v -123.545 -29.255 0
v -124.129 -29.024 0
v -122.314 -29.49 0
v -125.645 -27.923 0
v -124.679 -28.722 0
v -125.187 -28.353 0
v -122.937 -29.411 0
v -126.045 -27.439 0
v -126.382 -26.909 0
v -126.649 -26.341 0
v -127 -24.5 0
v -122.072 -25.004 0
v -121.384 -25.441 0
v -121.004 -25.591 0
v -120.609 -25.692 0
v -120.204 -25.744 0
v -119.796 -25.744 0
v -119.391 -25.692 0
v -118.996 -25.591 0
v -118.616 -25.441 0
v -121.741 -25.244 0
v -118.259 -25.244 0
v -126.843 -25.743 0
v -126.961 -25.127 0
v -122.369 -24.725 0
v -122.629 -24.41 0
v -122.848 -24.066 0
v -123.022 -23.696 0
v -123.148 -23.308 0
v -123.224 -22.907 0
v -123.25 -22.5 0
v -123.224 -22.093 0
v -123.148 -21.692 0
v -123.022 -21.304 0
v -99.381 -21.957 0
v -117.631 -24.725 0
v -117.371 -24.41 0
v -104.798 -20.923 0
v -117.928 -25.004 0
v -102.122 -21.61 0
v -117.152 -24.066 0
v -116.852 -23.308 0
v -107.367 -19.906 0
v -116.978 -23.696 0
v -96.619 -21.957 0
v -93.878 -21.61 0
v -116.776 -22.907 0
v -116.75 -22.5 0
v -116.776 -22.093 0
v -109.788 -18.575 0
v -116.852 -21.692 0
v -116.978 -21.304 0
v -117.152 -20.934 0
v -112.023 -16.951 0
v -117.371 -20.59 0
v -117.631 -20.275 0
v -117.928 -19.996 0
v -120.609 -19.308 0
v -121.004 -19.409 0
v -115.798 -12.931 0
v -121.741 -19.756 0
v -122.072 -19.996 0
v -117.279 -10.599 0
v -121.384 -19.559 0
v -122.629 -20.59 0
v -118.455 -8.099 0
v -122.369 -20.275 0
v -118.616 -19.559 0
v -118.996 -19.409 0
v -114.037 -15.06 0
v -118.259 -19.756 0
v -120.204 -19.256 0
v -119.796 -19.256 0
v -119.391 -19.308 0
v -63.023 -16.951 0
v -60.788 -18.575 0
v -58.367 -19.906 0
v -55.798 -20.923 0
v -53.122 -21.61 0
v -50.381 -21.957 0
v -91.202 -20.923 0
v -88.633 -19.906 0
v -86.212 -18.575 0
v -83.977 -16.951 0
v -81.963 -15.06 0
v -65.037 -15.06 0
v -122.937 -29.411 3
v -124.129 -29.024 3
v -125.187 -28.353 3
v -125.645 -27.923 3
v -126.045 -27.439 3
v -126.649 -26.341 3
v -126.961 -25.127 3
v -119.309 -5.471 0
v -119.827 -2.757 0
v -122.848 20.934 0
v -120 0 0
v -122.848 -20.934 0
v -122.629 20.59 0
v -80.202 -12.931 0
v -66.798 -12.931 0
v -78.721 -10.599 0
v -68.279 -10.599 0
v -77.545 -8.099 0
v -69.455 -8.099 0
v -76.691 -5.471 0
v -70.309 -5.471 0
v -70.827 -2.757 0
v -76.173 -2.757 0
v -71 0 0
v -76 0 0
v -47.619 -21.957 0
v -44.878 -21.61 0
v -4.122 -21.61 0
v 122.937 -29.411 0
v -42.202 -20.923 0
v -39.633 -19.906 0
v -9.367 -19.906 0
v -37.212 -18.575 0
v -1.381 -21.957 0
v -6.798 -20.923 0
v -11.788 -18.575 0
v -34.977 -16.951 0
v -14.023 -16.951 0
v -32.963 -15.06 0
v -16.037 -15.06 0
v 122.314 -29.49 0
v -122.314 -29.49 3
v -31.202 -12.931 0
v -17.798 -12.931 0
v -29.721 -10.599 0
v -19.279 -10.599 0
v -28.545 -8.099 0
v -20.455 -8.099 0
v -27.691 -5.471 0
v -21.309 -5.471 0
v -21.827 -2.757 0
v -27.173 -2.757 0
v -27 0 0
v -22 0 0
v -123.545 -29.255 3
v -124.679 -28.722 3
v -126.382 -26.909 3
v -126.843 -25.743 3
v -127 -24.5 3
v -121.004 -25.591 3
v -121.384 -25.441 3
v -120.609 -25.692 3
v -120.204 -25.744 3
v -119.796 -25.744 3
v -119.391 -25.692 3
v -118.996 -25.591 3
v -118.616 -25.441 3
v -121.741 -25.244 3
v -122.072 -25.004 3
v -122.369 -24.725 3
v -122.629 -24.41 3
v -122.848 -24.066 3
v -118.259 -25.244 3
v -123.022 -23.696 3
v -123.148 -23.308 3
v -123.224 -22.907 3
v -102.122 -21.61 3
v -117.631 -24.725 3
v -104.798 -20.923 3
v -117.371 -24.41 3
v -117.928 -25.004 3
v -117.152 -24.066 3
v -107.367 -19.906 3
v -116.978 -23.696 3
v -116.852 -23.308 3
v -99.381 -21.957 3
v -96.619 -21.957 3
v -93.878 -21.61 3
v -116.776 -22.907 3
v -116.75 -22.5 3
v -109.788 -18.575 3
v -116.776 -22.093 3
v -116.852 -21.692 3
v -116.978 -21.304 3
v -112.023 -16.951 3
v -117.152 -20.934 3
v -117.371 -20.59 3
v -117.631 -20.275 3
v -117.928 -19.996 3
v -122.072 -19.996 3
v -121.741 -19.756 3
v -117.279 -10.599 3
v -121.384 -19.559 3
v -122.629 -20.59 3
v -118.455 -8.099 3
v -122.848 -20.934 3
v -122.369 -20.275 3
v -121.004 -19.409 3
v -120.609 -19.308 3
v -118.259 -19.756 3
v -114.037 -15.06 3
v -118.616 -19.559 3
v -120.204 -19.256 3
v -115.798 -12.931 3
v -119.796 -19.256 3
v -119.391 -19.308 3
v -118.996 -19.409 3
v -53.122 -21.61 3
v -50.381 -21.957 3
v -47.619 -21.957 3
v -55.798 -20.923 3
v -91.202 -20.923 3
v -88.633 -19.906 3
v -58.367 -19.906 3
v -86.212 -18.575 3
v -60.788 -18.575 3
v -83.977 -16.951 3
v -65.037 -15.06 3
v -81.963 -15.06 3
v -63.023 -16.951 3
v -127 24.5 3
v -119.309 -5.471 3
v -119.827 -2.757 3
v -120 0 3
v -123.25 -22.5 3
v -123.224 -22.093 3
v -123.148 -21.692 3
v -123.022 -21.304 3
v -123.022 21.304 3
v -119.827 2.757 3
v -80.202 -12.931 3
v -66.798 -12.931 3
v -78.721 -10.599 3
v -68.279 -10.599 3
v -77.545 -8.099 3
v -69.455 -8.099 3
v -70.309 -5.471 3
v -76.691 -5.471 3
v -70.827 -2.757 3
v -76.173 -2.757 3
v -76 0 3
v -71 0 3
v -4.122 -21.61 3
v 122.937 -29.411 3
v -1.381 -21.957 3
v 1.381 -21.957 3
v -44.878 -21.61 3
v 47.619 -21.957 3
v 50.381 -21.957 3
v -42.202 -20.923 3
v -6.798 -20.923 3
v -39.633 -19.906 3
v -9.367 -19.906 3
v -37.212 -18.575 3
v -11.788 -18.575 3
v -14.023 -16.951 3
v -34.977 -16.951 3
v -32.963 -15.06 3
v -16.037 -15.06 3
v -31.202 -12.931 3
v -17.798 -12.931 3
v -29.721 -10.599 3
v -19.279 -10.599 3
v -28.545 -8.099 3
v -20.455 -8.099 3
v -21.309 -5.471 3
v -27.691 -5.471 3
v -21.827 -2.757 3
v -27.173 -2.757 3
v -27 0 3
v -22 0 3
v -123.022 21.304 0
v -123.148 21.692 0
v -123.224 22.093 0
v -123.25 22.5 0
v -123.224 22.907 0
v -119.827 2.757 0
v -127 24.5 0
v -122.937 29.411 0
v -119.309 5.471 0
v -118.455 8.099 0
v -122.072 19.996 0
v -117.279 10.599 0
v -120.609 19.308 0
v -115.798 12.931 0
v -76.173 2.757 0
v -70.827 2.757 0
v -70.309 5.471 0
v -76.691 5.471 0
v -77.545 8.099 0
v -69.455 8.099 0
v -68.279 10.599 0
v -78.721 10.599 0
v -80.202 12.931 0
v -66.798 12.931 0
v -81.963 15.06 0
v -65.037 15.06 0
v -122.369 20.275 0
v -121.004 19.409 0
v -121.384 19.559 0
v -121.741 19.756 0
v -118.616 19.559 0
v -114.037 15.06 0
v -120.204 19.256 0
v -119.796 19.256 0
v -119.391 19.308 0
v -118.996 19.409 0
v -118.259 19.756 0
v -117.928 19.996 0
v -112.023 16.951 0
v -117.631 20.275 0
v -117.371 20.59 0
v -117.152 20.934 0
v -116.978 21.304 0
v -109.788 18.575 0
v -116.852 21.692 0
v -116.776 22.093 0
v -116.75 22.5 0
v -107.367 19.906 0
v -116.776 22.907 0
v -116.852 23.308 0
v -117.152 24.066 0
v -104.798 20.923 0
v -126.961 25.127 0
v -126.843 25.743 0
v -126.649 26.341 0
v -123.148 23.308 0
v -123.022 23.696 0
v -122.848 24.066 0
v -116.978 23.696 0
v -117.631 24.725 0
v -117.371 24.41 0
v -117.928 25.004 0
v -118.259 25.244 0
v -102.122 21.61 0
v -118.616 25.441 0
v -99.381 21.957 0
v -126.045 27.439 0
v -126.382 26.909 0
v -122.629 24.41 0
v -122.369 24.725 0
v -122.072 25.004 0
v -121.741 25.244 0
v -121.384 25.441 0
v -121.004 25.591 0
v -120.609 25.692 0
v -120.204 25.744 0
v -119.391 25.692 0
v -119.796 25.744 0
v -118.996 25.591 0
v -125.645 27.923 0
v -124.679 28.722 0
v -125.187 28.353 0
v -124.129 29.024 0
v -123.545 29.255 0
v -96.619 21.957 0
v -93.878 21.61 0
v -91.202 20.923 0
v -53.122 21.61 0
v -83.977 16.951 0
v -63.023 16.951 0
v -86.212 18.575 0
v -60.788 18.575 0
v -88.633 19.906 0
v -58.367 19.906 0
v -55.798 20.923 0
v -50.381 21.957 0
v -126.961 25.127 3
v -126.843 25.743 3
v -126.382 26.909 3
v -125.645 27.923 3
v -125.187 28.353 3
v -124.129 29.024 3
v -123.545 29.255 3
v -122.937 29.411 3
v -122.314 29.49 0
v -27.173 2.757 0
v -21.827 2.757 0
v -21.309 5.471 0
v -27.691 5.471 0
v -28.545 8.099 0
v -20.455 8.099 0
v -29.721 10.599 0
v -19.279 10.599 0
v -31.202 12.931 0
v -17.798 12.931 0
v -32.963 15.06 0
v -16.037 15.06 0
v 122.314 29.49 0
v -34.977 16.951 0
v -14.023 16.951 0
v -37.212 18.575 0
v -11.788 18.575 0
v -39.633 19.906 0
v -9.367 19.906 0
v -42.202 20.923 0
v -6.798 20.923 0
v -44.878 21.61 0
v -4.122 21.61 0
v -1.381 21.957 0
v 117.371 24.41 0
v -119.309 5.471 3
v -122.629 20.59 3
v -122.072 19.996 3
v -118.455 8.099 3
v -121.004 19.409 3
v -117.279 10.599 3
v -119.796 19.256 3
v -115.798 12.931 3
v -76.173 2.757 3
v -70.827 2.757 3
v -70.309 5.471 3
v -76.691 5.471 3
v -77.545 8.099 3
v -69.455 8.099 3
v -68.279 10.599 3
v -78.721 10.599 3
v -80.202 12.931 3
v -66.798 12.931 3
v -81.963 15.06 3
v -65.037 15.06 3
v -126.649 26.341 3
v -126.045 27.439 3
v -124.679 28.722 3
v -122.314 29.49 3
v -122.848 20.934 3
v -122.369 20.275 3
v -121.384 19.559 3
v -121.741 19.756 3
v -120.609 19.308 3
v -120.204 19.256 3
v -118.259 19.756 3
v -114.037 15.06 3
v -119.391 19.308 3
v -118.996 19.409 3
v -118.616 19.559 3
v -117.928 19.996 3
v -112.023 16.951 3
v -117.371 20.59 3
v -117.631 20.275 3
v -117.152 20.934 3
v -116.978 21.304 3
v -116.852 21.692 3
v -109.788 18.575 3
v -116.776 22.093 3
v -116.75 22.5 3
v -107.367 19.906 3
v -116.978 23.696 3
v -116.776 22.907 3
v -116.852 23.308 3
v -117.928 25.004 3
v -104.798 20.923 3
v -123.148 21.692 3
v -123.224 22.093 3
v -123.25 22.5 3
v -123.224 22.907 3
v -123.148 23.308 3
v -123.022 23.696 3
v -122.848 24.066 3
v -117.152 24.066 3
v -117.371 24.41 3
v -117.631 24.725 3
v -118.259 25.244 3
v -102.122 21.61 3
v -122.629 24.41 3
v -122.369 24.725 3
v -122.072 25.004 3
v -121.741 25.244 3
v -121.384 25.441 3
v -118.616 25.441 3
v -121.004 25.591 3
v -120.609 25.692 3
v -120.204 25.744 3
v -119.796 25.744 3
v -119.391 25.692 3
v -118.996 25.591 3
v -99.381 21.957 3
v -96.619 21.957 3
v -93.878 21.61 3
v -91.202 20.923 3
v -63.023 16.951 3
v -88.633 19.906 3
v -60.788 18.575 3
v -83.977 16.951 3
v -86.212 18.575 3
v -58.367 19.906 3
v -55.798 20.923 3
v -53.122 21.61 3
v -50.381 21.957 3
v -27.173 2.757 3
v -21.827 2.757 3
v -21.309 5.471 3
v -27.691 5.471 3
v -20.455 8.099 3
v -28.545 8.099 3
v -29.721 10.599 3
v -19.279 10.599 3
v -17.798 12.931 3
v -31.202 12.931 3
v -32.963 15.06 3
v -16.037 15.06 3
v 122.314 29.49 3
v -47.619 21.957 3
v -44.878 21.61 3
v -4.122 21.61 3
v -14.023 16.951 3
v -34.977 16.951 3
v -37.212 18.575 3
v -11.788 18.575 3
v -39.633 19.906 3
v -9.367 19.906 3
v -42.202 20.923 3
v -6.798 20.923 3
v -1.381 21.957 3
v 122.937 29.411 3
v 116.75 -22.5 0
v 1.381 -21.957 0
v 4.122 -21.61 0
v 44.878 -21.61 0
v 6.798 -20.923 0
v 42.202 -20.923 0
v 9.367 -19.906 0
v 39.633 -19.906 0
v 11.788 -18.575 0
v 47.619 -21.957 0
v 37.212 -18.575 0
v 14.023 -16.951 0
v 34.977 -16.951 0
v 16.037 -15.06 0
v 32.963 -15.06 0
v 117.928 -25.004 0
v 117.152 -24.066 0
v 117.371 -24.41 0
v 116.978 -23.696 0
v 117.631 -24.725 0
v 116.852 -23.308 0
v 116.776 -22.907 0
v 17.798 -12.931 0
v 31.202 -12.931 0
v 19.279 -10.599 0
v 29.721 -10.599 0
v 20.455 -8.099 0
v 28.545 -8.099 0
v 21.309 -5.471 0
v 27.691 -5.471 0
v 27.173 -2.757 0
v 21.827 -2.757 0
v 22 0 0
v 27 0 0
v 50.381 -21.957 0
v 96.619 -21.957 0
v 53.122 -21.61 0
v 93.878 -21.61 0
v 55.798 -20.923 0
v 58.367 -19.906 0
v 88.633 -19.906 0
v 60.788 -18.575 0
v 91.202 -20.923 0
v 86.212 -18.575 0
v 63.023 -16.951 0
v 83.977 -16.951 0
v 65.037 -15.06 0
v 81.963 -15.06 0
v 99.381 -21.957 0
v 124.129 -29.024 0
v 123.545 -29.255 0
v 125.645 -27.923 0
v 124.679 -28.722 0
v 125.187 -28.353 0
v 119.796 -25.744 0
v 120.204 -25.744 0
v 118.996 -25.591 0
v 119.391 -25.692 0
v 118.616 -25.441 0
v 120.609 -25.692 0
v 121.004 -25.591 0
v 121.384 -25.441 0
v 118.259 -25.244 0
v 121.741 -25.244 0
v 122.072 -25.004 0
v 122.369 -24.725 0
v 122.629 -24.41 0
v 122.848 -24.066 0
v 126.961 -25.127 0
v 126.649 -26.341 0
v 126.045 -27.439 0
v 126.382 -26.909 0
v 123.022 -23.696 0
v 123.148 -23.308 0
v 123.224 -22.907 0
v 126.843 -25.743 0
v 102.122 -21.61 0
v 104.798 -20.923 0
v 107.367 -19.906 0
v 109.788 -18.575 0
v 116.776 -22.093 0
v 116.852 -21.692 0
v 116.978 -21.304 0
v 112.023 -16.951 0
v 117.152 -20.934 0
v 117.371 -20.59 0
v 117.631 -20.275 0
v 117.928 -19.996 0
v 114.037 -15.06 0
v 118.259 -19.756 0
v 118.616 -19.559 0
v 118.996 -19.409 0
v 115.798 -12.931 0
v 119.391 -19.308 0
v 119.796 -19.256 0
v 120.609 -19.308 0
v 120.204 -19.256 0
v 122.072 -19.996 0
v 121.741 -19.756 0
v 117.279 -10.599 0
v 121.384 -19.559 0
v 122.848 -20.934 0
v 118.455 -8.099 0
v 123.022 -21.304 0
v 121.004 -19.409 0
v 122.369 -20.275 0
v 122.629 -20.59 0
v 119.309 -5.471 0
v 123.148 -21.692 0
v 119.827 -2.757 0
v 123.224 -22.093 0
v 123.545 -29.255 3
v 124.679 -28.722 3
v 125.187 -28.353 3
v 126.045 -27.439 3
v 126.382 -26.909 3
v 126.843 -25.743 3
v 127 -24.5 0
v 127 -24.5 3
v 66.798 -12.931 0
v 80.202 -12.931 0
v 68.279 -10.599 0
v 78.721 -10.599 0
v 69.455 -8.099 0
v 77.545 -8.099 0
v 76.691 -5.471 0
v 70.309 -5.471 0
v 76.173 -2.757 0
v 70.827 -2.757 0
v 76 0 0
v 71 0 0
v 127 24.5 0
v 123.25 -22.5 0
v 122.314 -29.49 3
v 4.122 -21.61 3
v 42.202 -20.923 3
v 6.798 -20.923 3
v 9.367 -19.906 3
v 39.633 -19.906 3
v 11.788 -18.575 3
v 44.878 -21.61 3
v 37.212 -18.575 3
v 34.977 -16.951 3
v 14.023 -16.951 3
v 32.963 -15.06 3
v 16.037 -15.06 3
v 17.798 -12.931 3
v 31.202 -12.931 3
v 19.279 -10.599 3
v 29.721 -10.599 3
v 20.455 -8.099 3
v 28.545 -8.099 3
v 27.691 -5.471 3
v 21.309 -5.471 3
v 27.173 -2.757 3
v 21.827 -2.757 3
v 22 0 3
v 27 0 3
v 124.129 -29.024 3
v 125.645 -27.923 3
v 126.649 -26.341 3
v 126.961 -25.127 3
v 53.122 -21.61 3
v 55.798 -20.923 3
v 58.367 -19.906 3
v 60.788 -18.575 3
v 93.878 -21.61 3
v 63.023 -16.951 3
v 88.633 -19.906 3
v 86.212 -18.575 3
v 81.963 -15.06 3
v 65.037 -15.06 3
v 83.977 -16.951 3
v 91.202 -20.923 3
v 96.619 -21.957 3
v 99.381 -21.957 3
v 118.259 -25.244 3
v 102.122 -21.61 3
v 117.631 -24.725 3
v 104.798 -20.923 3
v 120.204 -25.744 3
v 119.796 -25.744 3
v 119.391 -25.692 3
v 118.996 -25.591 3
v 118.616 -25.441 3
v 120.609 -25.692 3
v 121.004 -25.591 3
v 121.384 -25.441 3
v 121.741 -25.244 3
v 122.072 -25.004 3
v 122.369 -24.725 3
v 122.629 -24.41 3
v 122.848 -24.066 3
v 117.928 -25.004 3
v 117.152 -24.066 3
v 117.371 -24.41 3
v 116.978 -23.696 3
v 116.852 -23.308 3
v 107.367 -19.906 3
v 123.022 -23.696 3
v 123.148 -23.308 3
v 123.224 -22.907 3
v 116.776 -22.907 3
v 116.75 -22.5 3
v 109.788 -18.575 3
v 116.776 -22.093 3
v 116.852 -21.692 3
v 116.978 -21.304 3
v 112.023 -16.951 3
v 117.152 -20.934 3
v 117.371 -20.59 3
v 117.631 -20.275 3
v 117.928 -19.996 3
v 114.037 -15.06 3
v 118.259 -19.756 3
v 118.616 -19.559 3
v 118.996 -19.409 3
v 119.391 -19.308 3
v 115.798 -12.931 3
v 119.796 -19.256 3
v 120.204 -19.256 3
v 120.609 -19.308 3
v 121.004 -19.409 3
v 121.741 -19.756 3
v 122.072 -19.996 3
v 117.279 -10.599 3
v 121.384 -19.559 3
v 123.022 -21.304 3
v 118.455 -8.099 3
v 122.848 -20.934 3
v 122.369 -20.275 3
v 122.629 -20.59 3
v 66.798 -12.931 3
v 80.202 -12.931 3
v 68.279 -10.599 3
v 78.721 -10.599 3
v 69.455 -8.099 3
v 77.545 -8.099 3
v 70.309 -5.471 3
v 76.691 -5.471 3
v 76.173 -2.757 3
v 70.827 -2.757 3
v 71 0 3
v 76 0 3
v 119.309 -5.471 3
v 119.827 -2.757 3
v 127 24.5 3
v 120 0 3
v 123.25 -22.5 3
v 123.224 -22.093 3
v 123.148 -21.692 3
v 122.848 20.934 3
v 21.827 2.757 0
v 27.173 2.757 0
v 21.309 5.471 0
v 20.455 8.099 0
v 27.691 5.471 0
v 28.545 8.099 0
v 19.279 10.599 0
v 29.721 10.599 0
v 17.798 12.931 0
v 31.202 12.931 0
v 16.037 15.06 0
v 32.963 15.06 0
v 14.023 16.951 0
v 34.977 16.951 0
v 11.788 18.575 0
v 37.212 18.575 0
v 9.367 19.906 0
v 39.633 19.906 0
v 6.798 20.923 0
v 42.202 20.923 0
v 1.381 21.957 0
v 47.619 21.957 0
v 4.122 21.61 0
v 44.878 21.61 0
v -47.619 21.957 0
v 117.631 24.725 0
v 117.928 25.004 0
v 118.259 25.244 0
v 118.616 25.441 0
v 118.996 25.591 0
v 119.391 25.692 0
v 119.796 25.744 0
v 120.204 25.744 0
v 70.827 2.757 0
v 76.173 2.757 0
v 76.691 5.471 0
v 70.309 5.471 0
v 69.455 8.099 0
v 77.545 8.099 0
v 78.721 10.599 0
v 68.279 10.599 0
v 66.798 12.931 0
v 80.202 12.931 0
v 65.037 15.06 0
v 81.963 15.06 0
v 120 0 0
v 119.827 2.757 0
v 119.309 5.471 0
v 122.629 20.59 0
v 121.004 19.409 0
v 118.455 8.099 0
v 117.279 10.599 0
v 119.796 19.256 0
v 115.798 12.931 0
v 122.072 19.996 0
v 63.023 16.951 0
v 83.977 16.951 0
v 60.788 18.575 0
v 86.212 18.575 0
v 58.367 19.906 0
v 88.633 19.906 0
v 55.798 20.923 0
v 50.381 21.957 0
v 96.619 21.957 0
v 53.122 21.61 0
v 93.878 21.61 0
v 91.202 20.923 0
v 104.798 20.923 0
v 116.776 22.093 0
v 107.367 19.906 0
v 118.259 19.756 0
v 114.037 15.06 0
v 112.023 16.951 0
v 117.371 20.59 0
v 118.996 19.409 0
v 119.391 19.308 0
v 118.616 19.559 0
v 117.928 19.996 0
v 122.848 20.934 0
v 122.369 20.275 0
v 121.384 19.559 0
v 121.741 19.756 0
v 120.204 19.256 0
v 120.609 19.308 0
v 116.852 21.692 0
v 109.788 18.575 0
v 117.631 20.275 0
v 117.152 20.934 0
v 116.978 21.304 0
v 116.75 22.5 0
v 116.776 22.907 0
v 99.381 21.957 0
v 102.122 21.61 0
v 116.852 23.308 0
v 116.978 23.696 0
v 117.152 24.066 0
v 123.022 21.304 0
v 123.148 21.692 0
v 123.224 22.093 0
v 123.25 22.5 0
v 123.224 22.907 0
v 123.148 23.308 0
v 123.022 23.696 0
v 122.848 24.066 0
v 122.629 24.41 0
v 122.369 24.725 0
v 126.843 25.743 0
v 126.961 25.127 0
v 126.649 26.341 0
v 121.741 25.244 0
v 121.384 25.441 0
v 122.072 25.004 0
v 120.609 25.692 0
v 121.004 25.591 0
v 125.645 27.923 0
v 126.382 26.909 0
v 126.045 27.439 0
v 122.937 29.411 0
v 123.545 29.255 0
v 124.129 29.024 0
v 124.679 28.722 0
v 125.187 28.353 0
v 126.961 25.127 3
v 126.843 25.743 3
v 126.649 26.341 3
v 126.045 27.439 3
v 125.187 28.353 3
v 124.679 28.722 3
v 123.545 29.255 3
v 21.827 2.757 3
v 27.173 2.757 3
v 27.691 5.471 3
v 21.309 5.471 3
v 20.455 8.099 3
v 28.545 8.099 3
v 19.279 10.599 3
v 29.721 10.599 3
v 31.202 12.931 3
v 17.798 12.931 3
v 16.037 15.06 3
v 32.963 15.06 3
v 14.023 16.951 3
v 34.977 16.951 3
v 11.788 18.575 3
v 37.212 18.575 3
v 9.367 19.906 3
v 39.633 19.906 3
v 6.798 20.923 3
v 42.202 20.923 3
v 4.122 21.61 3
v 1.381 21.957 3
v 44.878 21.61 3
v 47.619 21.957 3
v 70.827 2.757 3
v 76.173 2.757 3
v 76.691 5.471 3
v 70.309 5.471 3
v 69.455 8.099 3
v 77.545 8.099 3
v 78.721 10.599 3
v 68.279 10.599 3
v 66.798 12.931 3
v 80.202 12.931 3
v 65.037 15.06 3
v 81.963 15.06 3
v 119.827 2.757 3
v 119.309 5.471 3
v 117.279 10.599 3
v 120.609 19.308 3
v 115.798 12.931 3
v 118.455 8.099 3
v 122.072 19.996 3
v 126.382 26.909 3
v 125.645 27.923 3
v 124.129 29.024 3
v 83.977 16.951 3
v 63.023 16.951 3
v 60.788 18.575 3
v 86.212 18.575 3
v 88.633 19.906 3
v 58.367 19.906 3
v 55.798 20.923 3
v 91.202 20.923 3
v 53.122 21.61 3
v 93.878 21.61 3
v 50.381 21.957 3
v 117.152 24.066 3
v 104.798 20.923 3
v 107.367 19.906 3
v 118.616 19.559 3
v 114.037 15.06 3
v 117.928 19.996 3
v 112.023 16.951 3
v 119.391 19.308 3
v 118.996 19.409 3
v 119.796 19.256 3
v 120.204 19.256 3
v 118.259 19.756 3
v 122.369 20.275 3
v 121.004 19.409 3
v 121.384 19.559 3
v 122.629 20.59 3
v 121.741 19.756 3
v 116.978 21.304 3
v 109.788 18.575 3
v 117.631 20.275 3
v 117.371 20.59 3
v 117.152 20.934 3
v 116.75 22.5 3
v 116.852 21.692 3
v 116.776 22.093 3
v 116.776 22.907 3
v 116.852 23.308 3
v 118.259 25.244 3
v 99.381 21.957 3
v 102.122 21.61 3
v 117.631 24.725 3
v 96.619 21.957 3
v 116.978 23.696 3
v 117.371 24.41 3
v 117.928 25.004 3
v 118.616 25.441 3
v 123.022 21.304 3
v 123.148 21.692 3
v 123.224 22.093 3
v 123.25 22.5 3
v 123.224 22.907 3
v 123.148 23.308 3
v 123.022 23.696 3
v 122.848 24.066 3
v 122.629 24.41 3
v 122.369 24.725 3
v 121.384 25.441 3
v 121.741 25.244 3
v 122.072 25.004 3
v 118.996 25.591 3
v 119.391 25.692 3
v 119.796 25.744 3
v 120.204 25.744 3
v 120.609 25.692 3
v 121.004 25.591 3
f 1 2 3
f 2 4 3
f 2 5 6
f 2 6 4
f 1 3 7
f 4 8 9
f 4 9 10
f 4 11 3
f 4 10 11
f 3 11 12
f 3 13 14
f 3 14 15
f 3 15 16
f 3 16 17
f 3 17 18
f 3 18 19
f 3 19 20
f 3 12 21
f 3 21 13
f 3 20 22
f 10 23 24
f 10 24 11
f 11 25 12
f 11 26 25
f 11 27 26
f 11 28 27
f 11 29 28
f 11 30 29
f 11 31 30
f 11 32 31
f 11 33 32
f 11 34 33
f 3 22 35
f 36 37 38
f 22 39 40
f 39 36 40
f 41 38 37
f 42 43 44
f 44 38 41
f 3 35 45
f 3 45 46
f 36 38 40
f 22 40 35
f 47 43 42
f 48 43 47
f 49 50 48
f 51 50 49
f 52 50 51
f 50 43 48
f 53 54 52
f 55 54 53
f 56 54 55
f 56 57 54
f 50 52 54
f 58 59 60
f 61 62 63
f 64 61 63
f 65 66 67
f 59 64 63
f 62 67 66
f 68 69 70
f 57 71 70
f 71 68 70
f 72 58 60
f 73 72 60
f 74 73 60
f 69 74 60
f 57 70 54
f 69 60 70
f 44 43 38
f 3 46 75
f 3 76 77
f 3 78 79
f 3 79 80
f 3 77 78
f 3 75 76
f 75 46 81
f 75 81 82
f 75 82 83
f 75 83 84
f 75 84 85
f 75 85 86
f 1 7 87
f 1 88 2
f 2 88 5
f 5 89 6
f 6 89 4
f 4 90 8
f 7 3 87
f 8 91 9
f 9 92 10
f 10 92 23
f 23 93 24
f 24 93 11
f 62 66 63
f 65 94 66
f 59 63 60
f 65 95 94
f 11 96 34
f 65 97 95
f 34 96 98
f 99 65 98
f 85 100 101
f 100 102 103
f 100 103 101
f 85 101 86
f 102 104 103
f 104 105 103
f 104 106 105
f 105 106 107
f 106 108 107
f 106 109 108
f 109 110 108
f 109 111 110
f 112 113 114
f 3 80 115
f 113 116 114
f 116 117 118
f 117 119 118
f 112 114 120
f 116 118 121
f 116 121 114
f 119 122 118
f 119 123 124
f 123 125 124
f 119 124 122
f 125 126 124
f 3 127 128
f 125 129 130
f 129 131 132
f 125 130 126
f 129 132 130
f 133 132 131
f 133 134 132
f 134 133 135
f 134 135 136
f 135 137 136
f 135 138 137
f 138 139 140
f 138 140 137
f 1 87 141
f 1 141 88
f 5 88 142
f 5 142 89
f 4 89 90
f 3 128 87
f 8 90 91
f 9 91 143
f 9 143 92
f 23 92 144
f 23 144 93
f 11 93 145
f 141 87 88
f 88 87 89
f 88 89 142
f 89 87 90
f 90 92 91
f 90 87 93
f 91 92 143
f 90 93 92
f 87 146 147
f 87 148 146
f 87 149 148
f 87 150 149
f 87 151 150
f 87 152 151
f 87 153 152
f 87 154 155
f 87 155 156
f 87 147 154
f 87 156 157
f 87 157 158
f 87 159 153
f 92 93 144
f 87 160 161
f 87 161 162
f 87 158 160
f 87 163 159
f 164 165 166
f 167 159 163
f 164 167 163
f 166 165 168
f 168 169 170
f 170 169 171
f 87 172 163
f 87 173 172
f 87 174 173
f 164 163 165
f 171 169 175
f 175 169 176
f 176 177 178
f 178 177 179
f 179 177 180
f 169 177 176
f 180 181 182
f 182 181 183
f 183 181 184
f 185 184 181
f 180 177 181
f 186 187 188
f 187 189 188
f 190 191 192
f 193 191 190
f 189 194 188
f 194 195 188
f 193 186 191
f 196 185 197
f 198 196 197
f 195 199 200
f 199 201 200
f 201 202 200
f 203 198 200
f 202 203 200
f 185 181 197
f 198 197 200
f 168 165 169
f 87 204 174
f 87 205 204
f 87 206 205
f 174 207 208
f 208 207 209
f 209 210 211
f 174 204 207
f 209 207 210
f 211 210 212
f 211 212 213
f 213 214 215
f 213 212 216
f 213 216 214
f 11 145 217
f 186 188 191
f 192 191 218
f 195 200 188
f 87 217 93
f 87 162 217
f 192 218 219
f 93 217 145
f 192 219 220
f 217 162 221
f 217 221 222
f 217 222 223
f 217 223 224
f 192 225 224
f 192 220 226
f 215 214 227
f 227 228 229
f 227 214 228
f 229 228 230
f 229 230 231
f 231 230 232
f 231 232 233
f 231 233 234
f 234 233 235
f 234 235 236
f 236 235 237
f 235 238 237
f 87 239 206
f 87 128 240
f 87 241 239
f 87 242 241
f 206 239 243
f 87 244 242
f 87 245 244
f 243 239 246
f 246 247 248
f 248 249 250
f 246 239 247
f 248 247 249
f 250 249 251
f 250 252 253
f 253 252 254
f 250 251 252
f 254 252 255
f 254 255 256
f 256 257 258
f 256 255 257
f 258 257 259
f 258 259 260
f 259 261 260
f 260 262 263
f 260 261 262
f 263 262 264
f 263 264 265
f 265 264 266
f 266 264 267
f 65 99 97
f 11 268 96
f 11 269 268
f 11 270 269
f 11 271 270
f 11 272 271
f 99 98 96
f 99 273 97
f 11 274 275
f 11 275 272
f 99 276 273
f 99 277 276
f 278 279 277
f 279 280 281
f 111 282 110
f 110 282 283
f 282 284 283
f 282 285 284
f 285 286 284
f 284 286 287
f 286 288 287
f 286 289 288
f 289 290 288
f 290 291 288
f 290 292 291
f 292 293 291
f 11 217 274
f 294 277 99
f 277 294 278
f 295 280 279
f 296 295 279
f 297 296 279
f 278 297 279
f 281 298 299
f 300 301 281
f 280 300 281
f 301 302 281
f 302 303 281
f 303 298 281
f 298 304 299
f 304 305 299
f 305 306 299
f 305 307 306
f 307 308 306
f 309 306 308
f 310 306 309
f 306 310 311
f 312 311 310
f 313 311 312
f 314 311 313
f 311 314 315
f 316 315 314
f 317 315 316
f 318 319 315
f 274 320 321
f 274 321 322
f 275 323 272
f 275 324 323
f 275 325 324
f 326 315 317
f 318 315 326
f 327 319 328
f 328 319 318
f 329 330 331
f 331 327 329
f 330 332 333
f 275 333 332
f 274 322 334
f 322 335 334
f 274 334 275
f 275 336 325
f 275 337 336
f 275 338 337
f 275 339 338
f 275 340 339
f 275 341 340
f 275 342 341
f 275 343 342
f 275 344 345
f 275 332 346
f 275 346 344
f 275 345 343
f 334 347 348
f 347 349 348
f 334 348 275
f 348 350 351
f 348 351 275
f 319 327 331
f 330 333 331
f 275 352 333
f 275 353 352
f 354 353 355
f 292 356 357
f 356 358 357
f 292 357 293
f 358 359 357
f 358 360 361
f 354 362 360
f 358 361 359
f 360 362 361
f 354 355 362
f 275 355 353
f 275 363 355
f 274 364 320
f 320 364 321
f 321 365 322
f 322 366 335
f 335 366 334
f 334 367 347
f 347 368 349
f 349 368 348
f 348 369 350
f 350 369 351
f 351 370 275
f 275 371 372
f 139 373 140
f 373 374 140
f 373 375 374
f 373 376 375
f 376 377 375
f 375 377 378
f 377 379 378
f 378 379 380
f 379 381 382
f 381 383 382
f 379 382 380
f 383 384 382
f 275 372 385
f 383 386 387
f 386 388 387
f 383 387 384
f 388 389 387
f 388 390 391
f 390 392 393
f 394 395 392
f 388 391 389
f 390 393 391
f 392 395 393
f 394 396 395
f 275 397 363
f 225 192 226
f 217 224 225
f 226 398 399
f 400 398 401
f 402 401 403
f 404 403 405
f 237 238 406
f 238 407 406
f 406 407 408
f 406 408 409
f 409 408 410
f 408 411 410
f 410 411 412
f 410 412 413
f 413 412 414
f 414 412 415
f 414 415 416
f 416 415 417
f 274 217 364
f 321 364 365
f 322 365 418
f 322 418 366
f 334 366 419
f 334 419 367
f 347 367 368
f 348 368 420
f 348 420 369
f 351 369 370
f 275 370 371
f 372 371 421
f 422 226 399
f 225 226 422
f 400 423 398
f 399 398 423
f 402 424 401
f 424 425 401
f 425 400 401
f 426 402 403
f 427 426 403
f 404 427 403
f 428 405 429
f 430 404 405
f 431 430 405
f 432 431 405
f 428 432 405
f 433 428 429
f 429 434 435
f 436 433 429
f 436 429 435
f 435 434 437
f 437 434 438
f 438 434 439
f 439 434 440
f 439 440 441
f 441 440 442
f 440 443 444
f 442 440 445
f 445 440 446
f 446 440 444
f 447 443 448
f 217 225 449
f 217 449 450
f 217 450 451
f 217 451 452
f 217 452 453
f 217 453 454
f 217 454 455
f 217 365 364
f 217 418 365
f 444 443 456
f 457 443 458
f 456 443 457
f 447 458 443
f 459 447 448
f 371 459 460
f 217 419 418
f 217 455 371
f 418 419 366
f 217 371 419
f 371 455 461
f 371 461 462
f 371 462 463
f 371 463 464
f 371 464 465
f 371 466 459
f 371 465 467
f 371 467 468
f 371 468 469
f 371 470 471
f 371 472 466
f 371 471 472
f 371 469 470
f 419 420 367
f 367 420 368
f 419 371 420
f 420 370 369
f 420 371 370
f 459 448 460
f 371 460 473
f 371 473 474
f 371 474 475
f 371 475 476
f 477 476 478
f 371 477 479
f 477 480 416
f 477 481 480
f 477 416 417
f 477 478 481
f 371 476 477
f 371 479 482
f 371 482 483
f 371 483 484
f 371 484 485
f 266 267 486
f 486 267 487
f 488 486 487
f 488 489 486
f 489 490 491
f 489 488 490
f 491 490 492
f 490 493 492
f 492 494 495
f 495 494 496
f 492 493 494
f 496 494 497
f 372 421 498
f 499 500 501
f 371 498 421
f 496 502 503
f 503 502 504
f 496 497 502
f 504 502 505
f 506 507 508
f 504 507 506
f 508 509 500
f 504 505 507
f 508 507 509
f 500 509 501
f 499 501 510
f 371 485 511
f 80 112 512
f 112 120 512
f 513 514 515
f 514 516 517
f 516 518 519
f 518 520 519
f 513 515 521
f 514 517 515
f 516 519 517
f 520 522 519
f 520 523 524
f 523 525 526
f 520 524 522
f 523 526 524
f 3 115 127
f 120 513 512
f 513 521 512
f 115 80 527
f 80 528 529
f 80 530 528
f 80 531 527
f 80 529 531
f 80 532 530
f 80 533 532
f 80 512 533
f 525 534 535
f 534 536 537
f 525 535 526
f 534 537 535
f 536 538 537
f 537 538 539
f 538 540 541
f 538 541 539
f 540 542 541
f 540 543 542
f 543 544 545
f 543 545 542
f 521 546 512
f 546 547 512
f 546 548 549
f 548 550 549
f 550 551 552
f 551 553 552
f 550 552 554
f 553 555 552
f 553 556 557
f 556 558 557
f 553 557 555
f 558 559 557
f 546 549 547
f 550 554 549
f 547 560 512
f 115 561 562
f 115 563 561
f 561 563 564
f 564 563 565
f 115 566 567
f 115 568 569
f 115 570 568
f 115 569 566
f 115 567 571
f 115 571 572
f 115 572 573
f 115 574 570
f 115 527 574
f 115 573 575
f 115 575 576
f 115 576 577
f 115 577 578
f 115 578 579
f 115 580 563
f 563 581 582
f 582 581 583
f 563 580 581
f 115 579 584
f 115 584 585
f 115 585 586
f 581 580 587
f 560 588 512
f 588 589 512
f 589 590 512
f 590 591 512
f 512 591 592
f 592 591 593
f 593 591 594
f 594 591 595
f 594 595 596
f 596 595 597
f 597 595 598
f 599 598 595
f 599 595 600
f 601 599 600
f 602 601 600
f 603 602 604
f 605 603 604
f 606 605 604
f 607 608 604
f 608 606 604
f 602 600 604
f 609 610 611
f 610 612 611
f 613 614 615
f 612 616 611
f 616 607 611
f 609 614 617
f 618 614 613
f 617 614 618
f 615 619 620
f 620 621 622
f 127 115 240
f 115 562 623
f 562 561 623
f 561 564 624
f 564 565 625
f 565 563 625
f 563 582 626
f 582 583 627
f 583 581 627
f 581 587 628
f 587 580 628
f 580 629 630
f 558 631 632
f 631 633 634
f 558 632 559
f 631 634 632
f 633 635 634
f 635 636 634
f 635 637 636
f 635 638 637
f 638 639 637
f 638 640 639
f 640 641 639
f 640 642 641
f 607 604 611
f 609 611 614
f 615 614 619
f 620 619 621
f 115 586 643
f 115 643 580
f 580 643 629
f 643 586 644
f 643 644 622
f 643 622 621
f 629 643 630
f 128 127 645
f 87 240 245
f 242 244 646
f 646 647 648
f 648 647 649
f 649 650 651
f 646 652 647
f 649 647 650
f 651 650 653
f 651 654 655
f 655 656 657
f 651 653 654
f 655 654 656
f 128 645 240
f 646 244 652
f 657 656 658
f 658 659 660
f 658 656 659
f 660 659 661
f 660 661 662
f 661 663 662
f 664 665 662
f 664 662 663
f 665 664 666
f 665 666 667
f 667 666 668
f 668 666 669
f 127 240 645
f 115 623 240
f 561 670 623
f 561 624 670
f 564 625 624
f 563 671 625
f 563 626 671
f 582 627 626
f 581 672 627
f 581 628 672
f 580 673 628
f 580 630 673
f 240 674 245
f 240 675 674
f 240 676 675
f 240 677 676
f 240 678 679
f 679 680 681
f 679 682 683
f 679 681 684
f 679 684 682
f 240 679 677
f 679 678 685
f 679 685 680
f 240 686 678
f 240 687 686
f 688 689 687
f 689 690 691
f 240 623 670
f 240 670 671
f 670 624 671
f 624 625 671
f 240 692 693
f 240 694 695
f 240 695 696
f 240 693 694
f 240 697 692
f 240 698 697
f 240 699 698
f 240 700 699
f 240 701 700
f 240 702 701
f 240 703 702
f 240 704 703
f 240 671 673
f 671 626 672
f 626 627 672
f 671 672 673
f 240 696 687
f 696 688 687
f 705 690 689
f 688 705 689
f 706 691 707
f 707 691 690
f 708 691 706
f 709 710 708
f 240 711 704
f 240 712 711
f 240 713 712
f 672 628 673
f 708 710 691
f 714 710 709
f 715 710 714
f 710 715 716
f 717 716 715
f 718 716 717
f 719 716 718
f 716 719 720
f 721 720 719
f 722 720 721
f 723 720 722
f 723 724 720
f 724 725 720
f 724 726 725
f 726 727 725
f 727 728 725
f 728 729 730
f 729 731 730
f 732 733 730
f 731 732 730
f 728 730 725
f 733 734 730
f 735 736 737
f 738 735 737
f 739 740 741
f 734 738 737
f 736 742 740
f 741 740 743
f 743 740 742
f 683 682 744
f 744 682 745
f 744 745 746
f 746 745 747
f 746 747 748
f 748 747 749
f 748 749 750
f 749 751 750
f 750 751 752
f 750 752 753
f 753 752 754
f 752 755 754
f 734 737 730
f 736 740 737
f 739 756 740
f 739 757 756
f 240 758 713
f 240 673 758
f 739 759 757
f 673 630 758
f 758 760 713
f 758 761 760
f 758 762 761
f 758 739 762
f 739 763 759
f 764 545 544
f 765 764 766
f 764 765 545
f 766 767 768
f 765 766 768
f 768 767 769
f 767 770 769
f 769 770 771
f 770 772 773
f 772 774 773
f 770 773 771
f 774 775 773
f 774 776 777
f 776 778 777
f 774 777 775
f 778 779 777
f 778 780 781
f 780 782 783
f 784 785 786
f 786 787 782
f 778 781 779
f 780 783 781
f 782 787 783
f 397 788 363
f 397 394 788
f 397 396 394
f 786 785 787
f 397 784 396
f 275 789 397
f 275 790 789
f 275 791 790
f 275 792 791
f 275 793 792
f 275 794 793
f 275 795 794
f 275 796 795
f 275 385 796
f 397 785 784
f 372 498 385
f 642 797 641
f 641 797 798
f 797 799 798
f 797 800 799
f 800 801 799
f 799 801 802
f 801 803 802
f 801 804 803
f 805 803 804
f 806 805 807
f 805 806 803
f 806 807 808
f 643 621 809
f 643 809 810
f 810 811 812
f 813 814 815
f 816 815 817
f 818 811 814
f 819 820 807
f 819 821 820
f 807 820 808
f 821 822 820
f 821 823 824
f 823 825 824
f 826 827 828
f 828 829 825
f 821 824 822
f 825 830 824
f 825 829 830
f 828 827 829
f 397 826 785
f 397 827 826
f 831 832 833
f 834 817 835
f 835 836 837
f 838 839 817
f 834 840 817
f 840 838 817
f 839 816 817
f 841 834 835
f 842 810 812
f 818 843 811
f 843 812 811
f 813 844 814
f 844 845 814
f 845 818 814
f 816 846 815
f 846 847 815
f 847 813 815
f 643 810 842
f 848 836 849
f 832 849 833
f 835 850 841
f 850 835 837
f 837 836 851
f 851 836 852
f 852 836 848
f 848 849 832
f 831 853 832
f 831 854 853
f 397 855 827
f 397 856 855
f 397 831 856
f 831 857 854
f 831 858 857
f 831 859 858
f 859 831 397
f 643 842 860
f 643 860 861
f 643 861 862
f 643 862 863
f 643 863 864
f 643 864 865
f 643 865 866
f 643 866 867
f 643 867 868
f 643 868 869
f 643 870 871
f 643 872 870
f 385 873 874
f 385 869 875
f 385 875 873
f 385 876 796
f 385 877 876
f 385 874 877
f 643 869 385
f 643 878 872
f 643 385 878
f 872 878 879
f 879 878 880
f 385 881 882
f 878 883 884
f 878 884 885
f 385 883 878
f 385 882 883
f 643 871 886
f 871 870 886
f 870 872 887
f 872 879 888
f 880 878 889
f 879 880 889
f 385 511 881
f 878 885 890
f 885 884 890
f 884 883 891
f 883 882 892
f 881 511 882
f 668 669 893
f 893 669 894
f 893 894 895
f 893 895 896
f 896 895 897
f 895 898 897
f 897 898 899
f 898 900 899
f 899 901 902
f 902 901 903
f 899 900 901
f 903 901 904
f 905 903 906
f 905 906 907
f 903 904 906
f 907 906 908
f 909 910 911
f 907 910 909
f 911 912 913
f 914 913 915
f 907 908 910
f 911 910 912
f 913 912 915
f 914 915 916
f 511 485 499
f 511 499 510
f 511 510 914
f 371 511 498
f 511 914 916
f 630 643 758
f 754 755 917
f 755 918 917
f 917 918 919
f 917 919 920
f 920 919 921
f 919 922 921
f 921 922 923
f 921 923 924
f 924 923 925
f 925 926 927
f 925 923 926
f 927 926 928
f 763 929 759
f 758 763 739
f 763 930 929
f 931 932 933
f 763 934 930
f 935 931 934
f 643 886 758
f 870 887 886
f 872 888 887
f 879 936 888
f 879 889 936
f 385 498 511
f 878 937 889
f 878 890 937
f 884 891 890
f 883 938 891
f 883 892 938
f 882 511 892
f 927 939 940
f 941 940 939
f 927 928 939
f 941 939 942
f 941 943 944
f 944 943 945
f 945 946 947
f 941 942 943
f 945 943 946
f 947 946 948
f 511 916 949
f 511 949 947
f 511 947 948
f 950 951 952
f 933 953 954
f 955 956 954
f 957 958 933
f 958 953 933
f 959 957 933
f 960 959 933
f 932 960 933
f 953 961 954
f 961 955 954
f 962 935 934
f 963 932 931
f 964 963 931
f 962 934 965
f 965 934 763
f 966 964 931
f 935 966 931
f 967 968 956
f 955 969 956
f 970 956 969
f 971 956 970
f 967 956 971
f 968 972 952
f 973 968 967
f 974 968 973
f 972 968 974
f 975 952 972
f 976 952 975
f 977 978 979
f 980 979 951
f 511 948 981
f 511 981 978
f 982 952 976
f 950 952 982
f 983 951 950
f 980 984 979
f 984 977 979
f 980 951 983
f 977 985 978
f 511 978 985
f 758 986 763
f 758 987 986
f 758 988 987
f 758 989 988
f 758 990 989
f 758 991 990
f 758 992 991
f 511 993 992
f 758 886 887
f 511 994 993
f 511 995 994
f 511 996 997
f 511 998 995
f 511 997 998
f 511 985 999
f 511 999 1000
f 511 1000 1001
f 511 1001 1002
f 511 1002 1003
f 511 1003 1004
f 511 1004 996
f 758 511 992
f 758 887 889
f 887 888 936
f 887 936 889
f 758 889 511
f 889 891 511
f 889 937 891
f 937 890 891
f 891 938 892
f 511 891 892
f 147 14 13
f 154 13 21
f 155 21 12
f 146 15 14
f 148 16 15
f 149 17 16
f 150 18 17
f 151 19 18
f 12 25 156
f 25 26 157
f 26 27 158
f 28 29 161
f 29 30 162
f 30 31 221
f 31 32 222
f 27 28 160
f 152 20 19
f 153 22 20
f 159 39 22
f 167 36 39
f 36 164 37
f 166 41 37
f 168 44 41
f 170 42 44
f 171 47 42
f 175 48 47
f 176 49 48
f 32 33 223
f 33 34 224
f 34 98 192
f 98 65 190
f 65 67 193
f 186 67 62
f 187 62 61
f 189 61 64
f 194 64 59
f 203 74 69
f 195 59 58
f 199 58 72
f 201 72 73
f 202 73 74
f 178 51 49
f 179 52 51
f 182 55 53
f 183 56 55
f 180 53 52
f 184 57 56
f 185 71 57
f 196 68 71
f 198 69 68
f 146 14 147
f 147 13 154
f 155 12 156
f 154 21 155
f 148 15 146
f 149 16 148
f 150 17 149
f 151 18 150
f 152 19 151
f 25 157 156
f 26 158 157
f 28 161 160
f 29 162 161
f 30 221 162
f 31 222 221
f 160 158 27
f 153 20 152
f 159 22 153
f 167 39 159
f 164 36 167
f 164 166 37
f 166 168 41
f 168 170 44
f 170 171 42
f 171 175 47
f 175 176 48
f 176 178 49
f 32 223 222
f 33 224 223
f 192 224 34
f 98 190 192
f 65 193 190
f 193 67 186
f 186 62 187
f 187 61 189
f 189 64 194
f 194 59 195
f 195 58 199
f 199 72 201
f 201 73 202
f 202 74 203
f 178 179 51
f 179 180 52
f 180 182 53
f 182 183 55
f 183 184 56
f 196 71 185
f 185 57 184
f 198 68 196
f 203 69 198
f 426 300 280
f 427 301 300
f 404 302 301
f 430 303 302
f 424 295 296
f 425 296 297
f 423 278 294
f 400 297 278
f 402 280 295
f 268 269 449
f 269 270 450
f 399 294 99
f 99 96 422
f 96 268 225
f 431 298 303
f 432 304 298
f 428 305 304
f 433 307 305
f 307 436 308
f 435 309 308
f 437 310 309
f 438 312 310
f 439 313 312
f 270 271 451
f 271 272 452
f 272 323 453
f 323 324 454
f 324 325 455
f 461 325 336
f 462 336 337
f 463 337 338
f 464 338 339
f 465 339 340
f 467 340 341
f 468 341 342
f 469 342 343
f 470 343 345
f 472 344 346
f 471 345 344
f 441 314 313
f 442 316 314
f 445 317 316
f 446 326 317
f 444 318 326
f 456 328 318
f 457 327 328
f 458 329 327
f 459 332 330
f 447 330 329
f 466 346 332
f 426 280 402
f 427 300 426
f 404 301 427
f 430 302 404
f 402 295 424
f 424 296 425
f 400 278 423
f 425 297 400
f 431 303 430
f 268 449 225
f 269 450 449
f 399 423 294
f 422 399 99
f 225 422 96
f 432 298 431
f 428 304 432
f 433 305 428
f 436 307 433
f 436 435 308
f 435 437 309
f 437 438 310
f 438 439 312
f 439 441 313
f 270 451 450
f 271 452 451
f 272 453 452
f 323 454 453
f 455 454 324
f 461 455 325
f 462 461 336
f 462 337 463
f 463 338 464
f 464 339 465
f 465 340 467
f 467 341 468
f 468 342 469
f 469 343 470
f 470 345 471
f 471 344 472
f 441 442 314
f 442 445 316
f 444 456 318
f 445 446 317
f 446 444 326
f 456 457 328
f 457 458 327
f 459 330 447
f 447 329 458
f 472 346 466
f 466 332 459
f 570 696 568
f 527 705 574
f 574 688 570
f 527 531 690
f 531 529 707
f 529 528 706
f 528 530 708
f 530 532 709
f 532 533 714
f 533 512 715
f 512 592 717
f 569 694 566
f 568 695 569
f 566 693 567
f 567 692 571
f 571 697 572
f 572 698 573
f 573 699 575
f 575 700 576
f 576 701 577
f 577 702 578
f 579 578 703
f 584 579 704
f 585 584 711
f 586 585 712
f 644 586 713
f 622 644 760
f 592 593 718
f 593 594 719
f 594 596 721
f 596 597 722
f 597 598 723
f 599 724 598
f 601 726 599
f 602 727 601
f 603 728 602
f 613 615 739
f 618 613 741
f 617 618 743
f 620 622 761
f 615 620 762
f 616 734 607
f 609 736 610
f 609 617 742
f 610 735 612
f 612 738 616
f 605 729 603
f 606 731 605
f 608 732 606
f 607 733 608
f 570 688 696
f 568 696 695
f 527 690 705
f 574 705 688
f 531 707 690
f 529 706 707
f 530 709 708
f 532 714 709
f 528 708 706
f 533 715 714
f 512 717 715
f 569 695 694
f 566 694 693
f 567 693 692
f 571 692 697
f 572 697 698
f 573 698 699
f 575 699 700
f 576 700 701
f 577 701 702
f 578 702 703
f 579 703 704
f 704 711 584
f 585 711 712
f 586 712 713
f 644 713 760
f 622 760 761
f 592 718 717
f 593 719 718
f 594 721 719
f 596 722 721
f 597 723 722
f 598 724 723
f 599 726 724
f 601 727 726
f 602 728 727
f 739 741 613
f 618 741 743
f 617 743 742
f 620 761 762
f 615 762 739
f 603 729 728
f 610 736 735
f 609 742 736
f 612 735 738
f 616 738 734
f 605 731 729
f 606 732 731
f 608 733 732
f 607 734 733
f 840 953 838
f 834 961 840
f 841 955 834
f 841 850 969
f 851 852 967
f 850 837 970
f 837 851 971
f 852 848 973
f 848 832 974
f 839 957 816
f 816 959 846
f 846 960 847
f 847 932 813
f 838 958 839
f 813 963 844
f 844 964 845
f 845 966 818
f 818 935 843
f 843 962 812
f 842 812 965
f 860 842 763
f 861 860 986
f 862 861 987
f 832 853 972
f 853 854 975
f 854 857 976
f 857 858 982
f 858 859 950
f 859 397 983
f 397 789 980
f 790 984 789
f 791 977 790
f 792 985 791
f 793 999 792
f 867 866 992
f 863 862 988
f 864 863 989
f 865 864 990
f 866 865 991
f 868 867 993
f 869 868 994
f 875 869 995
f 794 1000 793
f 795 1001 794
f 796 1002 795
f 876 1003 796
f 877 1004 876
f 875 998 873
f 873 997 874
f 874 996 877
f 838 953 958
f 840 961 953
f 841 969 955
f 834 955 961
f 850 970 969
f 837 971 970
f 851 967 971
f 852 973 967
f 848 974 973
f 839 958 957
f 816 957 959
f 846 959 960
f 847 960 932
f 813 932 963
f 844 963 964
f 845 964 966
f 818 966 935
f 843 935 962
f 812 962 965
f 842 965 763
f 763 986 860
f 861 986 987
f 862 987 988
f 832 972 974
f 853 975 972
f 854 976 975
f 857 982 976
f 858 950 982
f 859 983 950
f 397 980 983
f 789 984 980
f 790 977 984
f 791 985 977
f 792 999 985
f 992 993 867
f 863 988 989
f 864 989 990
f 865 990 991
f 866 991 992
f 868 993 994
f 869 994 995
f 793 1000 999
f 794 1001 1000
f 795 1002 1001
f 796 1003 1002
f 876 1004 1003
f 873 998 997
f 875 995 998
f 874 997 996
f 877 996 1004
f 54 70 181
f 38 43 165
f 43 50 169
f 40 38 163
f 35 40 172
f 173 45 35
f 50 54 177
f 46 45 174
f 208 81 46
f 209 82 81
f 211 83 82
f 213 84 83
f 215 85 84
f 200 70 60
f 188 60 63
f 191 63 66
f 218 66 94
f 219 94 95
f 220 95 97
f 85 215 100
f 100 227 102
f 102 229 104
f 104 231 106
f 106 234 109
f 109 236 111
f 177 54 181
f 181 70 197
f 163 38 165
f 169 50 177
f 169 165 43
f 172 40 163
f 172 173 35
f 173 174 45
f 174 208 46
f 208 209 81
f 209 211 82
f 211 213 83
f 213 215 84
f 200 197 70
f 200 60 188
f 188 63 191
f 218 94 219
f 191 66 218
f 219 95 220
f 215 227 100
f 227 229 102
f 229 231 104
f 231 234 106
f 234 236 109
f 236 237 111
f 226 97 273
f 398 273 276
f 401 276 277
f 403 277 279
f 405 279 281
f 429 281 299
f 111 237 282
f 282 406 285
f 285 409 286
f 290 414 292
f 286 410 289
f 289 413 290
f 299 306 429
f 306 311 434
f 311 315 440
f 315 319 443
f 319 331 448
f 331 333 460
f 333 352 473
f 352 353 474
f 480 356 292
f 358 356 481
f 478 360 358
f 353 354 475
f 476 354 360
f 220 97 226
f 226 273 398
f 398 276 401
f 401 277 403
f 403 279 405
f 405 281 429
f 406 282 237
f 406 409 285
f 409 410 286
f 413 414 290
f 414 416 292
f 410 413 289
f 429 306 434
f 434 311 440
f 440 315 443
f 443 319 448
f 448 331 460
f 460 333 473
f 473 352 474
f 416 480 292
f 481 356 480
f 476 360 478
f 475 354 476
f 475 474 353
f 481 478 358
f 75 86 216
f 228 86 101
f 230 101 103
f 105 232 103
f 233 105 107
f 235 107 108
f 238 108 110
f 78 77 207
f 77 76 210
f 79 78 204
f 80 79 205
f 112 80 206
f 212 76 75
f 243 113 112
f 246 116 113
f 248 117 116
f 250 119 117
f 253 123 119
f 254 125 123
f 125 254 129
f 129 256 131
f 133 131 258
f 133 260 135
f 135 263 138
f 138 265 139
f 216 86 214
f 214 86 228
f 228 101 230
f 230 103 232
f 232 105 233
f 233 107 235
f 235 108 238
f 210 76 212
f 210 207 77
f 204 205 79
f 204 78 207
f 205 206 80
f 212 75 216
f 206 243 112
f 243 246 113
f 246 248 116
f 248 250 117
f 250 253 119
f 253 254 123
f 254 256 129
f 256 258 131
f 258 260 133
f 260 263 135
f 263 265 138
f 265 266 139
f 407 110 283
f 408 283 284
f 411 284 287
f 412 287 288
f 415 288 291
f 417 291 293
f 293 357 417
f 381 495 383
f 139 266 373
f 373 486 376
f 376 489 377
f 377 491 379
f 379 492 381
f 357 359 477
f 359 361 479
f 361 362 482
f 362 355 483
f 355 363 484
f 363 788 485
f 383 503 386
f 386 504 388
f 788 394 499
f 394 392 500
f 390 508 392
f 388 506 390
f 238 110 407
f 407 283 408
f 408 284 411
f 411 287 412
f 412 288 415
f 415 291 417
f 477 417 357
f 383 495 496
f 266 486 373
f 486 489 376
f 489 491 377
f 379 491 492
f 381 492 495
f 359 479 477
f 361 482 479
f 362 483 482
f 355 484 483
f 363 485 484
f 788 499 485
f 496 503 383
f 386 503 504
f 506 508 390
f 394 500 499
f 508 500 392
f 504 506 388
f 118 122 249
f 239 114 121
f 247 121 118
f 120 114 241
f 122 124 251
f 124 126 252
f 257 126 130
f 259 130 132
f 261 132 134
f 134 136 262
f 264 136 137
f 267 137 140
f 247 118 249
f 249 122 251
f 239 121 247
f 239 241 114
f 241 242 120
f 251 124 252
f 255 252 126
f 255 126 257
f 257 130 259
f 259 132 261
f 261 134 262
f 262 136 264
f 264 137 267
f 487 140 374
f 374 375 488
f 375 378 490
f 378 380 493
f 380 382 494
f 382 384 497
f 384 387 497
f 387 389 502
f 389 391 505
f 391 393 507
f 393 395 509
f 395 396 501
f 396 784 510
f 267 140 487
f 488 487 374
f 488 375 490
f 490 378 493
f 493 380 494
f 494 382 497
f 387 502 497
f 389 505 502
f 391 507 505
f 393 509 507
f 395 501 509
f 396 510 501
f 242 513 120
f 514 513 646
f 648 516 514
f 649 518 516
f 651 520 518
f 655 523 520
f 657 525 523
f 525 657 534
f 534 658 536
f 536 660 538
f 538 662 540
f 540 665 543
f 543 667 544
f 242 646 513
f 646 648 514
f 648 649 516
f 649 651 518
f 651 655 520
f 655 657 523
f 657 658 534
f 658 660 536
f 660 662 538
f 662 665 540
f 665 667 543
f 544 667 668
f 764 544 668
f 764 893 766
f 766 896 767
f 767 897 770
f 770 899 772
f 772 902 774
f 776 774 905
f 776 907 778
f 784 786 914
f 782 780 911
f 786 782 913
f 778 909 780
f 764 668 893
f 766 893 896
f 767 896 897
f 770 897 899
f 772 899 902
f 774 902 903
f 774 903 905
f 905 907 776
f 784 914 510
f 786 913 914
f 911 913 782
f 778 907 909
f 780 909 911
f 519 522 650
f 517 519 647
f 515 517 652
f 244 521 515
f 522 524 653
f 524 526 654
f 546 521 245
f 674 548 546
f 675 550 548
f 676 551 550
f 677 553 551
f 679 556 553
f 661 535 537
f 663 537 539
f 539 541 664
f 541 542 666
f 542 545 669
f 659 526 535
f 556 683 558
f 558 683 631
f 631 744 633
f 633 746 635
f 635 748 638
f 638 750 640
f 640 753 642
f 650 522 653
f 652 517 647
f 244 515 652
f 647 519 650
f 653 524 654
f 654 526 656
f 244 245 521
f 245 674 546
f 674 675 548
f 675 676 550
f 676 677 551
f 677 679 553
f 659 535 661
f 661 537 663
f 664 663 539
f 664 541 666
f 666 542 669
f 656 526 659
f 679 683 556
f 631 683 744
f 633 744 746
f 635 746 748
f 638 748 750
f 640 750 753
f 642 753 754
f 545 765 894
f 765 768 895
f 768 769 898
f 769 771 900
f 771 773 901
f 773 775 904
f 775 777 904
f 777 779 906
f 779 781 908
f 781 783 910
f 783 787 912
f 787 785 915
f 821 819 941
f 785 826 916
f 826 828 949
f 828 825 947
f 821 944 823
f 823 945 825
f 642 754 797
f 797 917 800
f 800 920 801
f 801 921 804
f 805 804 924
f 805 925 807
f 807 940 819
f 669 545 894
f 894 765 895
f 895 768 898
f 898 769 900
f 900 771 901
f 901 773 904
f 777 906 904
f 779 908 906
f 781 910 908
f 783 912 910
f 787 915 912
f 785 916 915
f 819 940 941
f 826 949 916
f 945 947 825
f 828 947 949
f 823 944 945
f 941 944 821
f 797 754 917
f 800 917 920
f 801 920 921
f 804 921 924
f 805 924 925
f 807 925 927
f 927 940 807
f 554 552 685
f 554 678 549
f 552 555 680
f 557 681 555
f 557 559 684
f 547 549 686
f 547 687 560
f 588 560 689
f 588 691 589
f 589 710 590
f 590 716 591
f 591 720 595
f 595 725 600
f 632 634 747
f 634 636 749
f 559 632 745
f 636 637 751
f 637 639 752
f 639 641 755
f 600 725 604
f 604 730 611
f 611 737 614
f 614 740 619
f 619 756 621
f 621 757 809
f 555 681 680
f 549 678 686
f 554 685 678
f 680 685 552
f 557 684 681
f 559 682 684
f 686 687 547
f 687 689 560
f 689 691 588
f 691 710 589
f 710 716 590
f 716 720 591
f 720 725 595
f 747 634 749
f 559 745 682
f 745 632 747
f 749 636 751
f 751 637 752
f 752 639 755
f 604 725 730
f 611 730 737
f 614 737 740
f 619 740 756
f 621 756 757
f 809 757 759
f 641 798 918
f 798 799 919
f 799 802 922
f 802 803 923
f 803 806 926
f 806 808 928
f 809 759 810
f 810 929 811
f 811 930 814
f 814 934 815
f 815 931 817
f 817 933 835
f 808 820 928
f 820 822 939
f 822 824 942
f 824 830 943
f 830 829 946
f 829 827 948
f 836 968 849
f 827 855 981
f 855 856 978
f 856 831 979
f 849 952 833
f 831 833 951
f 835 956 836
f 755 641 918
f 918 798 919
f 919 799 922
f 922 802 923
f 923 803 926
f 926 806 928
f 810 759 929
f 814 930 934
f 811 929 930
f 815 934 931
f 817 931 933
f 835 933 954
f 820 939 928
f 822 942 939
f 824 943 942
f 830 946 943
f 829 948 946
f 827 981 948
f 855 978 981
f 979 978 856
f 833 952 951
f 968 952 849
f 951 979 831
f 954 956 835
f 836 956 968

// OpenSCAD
$fn = 50;

difference() {
	union() {
		hull() {
			translate(v = [-122.0, 24.5, 0]) {
				cylinder(h = 3, r = 5);
			}
			translate(v = [122.0, 24.5, 0]) {
				cylinder(h = 3, r = 5);
			}
			translate(v = [-122.0, -24.5, 0]) {
				cylinder(h = 3, r = 5);
			}
			translate(v = [122.0, -24.5, 0]) {
				cylinder(h = 3, r = 5);
			}
		}
	}
	union() {
		translate(v = [-120.0, -22.5, -100.0]) {
			cylinder(h = 200, r = 3.25);
		}
		translate(v = [-120.0, 22.5, -100.0]) {
			cylinder(h = 200, r = 3.25);
		}
		translate(v = [120.0, -22.5, -100.0]) {
			cylinder(h = 200, r = 3.25);
		}
		translate(v = [120.0, 22.5, -100.0]) {
			cylinder(h = 200, r = 3.25);
		}
		translate(v = [-120.0, -22.5, -100.0]) {
			cylinder(h = 200, r = 1.8);
		}
		translate(v = [-120.0, 22.5, -100.0]) {
			cylinder(h = 200, r = 1.8);
		}
		translate(v = [120.0, -22.5, -100.0]) {
			cylinder(h = 200, r = 1.8);
		}
		translate(v = [120.0, 22.5, -100.0]) {
			cylinder(h = 200, r = 1.8);
		}
		translate(v = [-98.0, 0, 0.0]) {
			cylinder(h = 3, r = 22.0);
		}
		translate(v = [-49.0, 0, 0.0]) {
			cylinder(h = 3, r = 22.0);
		}
		cylinder(h = 3, r = 22.0);
		translate(v = [49.0, 0, 0.0]) {
			cylinder(h = 3, r = 22.0);
		}
		translate(v = [98.0, 0, 0.0]) {
			cylinder(h = 3, r = 22.0);
		}
	}
}
